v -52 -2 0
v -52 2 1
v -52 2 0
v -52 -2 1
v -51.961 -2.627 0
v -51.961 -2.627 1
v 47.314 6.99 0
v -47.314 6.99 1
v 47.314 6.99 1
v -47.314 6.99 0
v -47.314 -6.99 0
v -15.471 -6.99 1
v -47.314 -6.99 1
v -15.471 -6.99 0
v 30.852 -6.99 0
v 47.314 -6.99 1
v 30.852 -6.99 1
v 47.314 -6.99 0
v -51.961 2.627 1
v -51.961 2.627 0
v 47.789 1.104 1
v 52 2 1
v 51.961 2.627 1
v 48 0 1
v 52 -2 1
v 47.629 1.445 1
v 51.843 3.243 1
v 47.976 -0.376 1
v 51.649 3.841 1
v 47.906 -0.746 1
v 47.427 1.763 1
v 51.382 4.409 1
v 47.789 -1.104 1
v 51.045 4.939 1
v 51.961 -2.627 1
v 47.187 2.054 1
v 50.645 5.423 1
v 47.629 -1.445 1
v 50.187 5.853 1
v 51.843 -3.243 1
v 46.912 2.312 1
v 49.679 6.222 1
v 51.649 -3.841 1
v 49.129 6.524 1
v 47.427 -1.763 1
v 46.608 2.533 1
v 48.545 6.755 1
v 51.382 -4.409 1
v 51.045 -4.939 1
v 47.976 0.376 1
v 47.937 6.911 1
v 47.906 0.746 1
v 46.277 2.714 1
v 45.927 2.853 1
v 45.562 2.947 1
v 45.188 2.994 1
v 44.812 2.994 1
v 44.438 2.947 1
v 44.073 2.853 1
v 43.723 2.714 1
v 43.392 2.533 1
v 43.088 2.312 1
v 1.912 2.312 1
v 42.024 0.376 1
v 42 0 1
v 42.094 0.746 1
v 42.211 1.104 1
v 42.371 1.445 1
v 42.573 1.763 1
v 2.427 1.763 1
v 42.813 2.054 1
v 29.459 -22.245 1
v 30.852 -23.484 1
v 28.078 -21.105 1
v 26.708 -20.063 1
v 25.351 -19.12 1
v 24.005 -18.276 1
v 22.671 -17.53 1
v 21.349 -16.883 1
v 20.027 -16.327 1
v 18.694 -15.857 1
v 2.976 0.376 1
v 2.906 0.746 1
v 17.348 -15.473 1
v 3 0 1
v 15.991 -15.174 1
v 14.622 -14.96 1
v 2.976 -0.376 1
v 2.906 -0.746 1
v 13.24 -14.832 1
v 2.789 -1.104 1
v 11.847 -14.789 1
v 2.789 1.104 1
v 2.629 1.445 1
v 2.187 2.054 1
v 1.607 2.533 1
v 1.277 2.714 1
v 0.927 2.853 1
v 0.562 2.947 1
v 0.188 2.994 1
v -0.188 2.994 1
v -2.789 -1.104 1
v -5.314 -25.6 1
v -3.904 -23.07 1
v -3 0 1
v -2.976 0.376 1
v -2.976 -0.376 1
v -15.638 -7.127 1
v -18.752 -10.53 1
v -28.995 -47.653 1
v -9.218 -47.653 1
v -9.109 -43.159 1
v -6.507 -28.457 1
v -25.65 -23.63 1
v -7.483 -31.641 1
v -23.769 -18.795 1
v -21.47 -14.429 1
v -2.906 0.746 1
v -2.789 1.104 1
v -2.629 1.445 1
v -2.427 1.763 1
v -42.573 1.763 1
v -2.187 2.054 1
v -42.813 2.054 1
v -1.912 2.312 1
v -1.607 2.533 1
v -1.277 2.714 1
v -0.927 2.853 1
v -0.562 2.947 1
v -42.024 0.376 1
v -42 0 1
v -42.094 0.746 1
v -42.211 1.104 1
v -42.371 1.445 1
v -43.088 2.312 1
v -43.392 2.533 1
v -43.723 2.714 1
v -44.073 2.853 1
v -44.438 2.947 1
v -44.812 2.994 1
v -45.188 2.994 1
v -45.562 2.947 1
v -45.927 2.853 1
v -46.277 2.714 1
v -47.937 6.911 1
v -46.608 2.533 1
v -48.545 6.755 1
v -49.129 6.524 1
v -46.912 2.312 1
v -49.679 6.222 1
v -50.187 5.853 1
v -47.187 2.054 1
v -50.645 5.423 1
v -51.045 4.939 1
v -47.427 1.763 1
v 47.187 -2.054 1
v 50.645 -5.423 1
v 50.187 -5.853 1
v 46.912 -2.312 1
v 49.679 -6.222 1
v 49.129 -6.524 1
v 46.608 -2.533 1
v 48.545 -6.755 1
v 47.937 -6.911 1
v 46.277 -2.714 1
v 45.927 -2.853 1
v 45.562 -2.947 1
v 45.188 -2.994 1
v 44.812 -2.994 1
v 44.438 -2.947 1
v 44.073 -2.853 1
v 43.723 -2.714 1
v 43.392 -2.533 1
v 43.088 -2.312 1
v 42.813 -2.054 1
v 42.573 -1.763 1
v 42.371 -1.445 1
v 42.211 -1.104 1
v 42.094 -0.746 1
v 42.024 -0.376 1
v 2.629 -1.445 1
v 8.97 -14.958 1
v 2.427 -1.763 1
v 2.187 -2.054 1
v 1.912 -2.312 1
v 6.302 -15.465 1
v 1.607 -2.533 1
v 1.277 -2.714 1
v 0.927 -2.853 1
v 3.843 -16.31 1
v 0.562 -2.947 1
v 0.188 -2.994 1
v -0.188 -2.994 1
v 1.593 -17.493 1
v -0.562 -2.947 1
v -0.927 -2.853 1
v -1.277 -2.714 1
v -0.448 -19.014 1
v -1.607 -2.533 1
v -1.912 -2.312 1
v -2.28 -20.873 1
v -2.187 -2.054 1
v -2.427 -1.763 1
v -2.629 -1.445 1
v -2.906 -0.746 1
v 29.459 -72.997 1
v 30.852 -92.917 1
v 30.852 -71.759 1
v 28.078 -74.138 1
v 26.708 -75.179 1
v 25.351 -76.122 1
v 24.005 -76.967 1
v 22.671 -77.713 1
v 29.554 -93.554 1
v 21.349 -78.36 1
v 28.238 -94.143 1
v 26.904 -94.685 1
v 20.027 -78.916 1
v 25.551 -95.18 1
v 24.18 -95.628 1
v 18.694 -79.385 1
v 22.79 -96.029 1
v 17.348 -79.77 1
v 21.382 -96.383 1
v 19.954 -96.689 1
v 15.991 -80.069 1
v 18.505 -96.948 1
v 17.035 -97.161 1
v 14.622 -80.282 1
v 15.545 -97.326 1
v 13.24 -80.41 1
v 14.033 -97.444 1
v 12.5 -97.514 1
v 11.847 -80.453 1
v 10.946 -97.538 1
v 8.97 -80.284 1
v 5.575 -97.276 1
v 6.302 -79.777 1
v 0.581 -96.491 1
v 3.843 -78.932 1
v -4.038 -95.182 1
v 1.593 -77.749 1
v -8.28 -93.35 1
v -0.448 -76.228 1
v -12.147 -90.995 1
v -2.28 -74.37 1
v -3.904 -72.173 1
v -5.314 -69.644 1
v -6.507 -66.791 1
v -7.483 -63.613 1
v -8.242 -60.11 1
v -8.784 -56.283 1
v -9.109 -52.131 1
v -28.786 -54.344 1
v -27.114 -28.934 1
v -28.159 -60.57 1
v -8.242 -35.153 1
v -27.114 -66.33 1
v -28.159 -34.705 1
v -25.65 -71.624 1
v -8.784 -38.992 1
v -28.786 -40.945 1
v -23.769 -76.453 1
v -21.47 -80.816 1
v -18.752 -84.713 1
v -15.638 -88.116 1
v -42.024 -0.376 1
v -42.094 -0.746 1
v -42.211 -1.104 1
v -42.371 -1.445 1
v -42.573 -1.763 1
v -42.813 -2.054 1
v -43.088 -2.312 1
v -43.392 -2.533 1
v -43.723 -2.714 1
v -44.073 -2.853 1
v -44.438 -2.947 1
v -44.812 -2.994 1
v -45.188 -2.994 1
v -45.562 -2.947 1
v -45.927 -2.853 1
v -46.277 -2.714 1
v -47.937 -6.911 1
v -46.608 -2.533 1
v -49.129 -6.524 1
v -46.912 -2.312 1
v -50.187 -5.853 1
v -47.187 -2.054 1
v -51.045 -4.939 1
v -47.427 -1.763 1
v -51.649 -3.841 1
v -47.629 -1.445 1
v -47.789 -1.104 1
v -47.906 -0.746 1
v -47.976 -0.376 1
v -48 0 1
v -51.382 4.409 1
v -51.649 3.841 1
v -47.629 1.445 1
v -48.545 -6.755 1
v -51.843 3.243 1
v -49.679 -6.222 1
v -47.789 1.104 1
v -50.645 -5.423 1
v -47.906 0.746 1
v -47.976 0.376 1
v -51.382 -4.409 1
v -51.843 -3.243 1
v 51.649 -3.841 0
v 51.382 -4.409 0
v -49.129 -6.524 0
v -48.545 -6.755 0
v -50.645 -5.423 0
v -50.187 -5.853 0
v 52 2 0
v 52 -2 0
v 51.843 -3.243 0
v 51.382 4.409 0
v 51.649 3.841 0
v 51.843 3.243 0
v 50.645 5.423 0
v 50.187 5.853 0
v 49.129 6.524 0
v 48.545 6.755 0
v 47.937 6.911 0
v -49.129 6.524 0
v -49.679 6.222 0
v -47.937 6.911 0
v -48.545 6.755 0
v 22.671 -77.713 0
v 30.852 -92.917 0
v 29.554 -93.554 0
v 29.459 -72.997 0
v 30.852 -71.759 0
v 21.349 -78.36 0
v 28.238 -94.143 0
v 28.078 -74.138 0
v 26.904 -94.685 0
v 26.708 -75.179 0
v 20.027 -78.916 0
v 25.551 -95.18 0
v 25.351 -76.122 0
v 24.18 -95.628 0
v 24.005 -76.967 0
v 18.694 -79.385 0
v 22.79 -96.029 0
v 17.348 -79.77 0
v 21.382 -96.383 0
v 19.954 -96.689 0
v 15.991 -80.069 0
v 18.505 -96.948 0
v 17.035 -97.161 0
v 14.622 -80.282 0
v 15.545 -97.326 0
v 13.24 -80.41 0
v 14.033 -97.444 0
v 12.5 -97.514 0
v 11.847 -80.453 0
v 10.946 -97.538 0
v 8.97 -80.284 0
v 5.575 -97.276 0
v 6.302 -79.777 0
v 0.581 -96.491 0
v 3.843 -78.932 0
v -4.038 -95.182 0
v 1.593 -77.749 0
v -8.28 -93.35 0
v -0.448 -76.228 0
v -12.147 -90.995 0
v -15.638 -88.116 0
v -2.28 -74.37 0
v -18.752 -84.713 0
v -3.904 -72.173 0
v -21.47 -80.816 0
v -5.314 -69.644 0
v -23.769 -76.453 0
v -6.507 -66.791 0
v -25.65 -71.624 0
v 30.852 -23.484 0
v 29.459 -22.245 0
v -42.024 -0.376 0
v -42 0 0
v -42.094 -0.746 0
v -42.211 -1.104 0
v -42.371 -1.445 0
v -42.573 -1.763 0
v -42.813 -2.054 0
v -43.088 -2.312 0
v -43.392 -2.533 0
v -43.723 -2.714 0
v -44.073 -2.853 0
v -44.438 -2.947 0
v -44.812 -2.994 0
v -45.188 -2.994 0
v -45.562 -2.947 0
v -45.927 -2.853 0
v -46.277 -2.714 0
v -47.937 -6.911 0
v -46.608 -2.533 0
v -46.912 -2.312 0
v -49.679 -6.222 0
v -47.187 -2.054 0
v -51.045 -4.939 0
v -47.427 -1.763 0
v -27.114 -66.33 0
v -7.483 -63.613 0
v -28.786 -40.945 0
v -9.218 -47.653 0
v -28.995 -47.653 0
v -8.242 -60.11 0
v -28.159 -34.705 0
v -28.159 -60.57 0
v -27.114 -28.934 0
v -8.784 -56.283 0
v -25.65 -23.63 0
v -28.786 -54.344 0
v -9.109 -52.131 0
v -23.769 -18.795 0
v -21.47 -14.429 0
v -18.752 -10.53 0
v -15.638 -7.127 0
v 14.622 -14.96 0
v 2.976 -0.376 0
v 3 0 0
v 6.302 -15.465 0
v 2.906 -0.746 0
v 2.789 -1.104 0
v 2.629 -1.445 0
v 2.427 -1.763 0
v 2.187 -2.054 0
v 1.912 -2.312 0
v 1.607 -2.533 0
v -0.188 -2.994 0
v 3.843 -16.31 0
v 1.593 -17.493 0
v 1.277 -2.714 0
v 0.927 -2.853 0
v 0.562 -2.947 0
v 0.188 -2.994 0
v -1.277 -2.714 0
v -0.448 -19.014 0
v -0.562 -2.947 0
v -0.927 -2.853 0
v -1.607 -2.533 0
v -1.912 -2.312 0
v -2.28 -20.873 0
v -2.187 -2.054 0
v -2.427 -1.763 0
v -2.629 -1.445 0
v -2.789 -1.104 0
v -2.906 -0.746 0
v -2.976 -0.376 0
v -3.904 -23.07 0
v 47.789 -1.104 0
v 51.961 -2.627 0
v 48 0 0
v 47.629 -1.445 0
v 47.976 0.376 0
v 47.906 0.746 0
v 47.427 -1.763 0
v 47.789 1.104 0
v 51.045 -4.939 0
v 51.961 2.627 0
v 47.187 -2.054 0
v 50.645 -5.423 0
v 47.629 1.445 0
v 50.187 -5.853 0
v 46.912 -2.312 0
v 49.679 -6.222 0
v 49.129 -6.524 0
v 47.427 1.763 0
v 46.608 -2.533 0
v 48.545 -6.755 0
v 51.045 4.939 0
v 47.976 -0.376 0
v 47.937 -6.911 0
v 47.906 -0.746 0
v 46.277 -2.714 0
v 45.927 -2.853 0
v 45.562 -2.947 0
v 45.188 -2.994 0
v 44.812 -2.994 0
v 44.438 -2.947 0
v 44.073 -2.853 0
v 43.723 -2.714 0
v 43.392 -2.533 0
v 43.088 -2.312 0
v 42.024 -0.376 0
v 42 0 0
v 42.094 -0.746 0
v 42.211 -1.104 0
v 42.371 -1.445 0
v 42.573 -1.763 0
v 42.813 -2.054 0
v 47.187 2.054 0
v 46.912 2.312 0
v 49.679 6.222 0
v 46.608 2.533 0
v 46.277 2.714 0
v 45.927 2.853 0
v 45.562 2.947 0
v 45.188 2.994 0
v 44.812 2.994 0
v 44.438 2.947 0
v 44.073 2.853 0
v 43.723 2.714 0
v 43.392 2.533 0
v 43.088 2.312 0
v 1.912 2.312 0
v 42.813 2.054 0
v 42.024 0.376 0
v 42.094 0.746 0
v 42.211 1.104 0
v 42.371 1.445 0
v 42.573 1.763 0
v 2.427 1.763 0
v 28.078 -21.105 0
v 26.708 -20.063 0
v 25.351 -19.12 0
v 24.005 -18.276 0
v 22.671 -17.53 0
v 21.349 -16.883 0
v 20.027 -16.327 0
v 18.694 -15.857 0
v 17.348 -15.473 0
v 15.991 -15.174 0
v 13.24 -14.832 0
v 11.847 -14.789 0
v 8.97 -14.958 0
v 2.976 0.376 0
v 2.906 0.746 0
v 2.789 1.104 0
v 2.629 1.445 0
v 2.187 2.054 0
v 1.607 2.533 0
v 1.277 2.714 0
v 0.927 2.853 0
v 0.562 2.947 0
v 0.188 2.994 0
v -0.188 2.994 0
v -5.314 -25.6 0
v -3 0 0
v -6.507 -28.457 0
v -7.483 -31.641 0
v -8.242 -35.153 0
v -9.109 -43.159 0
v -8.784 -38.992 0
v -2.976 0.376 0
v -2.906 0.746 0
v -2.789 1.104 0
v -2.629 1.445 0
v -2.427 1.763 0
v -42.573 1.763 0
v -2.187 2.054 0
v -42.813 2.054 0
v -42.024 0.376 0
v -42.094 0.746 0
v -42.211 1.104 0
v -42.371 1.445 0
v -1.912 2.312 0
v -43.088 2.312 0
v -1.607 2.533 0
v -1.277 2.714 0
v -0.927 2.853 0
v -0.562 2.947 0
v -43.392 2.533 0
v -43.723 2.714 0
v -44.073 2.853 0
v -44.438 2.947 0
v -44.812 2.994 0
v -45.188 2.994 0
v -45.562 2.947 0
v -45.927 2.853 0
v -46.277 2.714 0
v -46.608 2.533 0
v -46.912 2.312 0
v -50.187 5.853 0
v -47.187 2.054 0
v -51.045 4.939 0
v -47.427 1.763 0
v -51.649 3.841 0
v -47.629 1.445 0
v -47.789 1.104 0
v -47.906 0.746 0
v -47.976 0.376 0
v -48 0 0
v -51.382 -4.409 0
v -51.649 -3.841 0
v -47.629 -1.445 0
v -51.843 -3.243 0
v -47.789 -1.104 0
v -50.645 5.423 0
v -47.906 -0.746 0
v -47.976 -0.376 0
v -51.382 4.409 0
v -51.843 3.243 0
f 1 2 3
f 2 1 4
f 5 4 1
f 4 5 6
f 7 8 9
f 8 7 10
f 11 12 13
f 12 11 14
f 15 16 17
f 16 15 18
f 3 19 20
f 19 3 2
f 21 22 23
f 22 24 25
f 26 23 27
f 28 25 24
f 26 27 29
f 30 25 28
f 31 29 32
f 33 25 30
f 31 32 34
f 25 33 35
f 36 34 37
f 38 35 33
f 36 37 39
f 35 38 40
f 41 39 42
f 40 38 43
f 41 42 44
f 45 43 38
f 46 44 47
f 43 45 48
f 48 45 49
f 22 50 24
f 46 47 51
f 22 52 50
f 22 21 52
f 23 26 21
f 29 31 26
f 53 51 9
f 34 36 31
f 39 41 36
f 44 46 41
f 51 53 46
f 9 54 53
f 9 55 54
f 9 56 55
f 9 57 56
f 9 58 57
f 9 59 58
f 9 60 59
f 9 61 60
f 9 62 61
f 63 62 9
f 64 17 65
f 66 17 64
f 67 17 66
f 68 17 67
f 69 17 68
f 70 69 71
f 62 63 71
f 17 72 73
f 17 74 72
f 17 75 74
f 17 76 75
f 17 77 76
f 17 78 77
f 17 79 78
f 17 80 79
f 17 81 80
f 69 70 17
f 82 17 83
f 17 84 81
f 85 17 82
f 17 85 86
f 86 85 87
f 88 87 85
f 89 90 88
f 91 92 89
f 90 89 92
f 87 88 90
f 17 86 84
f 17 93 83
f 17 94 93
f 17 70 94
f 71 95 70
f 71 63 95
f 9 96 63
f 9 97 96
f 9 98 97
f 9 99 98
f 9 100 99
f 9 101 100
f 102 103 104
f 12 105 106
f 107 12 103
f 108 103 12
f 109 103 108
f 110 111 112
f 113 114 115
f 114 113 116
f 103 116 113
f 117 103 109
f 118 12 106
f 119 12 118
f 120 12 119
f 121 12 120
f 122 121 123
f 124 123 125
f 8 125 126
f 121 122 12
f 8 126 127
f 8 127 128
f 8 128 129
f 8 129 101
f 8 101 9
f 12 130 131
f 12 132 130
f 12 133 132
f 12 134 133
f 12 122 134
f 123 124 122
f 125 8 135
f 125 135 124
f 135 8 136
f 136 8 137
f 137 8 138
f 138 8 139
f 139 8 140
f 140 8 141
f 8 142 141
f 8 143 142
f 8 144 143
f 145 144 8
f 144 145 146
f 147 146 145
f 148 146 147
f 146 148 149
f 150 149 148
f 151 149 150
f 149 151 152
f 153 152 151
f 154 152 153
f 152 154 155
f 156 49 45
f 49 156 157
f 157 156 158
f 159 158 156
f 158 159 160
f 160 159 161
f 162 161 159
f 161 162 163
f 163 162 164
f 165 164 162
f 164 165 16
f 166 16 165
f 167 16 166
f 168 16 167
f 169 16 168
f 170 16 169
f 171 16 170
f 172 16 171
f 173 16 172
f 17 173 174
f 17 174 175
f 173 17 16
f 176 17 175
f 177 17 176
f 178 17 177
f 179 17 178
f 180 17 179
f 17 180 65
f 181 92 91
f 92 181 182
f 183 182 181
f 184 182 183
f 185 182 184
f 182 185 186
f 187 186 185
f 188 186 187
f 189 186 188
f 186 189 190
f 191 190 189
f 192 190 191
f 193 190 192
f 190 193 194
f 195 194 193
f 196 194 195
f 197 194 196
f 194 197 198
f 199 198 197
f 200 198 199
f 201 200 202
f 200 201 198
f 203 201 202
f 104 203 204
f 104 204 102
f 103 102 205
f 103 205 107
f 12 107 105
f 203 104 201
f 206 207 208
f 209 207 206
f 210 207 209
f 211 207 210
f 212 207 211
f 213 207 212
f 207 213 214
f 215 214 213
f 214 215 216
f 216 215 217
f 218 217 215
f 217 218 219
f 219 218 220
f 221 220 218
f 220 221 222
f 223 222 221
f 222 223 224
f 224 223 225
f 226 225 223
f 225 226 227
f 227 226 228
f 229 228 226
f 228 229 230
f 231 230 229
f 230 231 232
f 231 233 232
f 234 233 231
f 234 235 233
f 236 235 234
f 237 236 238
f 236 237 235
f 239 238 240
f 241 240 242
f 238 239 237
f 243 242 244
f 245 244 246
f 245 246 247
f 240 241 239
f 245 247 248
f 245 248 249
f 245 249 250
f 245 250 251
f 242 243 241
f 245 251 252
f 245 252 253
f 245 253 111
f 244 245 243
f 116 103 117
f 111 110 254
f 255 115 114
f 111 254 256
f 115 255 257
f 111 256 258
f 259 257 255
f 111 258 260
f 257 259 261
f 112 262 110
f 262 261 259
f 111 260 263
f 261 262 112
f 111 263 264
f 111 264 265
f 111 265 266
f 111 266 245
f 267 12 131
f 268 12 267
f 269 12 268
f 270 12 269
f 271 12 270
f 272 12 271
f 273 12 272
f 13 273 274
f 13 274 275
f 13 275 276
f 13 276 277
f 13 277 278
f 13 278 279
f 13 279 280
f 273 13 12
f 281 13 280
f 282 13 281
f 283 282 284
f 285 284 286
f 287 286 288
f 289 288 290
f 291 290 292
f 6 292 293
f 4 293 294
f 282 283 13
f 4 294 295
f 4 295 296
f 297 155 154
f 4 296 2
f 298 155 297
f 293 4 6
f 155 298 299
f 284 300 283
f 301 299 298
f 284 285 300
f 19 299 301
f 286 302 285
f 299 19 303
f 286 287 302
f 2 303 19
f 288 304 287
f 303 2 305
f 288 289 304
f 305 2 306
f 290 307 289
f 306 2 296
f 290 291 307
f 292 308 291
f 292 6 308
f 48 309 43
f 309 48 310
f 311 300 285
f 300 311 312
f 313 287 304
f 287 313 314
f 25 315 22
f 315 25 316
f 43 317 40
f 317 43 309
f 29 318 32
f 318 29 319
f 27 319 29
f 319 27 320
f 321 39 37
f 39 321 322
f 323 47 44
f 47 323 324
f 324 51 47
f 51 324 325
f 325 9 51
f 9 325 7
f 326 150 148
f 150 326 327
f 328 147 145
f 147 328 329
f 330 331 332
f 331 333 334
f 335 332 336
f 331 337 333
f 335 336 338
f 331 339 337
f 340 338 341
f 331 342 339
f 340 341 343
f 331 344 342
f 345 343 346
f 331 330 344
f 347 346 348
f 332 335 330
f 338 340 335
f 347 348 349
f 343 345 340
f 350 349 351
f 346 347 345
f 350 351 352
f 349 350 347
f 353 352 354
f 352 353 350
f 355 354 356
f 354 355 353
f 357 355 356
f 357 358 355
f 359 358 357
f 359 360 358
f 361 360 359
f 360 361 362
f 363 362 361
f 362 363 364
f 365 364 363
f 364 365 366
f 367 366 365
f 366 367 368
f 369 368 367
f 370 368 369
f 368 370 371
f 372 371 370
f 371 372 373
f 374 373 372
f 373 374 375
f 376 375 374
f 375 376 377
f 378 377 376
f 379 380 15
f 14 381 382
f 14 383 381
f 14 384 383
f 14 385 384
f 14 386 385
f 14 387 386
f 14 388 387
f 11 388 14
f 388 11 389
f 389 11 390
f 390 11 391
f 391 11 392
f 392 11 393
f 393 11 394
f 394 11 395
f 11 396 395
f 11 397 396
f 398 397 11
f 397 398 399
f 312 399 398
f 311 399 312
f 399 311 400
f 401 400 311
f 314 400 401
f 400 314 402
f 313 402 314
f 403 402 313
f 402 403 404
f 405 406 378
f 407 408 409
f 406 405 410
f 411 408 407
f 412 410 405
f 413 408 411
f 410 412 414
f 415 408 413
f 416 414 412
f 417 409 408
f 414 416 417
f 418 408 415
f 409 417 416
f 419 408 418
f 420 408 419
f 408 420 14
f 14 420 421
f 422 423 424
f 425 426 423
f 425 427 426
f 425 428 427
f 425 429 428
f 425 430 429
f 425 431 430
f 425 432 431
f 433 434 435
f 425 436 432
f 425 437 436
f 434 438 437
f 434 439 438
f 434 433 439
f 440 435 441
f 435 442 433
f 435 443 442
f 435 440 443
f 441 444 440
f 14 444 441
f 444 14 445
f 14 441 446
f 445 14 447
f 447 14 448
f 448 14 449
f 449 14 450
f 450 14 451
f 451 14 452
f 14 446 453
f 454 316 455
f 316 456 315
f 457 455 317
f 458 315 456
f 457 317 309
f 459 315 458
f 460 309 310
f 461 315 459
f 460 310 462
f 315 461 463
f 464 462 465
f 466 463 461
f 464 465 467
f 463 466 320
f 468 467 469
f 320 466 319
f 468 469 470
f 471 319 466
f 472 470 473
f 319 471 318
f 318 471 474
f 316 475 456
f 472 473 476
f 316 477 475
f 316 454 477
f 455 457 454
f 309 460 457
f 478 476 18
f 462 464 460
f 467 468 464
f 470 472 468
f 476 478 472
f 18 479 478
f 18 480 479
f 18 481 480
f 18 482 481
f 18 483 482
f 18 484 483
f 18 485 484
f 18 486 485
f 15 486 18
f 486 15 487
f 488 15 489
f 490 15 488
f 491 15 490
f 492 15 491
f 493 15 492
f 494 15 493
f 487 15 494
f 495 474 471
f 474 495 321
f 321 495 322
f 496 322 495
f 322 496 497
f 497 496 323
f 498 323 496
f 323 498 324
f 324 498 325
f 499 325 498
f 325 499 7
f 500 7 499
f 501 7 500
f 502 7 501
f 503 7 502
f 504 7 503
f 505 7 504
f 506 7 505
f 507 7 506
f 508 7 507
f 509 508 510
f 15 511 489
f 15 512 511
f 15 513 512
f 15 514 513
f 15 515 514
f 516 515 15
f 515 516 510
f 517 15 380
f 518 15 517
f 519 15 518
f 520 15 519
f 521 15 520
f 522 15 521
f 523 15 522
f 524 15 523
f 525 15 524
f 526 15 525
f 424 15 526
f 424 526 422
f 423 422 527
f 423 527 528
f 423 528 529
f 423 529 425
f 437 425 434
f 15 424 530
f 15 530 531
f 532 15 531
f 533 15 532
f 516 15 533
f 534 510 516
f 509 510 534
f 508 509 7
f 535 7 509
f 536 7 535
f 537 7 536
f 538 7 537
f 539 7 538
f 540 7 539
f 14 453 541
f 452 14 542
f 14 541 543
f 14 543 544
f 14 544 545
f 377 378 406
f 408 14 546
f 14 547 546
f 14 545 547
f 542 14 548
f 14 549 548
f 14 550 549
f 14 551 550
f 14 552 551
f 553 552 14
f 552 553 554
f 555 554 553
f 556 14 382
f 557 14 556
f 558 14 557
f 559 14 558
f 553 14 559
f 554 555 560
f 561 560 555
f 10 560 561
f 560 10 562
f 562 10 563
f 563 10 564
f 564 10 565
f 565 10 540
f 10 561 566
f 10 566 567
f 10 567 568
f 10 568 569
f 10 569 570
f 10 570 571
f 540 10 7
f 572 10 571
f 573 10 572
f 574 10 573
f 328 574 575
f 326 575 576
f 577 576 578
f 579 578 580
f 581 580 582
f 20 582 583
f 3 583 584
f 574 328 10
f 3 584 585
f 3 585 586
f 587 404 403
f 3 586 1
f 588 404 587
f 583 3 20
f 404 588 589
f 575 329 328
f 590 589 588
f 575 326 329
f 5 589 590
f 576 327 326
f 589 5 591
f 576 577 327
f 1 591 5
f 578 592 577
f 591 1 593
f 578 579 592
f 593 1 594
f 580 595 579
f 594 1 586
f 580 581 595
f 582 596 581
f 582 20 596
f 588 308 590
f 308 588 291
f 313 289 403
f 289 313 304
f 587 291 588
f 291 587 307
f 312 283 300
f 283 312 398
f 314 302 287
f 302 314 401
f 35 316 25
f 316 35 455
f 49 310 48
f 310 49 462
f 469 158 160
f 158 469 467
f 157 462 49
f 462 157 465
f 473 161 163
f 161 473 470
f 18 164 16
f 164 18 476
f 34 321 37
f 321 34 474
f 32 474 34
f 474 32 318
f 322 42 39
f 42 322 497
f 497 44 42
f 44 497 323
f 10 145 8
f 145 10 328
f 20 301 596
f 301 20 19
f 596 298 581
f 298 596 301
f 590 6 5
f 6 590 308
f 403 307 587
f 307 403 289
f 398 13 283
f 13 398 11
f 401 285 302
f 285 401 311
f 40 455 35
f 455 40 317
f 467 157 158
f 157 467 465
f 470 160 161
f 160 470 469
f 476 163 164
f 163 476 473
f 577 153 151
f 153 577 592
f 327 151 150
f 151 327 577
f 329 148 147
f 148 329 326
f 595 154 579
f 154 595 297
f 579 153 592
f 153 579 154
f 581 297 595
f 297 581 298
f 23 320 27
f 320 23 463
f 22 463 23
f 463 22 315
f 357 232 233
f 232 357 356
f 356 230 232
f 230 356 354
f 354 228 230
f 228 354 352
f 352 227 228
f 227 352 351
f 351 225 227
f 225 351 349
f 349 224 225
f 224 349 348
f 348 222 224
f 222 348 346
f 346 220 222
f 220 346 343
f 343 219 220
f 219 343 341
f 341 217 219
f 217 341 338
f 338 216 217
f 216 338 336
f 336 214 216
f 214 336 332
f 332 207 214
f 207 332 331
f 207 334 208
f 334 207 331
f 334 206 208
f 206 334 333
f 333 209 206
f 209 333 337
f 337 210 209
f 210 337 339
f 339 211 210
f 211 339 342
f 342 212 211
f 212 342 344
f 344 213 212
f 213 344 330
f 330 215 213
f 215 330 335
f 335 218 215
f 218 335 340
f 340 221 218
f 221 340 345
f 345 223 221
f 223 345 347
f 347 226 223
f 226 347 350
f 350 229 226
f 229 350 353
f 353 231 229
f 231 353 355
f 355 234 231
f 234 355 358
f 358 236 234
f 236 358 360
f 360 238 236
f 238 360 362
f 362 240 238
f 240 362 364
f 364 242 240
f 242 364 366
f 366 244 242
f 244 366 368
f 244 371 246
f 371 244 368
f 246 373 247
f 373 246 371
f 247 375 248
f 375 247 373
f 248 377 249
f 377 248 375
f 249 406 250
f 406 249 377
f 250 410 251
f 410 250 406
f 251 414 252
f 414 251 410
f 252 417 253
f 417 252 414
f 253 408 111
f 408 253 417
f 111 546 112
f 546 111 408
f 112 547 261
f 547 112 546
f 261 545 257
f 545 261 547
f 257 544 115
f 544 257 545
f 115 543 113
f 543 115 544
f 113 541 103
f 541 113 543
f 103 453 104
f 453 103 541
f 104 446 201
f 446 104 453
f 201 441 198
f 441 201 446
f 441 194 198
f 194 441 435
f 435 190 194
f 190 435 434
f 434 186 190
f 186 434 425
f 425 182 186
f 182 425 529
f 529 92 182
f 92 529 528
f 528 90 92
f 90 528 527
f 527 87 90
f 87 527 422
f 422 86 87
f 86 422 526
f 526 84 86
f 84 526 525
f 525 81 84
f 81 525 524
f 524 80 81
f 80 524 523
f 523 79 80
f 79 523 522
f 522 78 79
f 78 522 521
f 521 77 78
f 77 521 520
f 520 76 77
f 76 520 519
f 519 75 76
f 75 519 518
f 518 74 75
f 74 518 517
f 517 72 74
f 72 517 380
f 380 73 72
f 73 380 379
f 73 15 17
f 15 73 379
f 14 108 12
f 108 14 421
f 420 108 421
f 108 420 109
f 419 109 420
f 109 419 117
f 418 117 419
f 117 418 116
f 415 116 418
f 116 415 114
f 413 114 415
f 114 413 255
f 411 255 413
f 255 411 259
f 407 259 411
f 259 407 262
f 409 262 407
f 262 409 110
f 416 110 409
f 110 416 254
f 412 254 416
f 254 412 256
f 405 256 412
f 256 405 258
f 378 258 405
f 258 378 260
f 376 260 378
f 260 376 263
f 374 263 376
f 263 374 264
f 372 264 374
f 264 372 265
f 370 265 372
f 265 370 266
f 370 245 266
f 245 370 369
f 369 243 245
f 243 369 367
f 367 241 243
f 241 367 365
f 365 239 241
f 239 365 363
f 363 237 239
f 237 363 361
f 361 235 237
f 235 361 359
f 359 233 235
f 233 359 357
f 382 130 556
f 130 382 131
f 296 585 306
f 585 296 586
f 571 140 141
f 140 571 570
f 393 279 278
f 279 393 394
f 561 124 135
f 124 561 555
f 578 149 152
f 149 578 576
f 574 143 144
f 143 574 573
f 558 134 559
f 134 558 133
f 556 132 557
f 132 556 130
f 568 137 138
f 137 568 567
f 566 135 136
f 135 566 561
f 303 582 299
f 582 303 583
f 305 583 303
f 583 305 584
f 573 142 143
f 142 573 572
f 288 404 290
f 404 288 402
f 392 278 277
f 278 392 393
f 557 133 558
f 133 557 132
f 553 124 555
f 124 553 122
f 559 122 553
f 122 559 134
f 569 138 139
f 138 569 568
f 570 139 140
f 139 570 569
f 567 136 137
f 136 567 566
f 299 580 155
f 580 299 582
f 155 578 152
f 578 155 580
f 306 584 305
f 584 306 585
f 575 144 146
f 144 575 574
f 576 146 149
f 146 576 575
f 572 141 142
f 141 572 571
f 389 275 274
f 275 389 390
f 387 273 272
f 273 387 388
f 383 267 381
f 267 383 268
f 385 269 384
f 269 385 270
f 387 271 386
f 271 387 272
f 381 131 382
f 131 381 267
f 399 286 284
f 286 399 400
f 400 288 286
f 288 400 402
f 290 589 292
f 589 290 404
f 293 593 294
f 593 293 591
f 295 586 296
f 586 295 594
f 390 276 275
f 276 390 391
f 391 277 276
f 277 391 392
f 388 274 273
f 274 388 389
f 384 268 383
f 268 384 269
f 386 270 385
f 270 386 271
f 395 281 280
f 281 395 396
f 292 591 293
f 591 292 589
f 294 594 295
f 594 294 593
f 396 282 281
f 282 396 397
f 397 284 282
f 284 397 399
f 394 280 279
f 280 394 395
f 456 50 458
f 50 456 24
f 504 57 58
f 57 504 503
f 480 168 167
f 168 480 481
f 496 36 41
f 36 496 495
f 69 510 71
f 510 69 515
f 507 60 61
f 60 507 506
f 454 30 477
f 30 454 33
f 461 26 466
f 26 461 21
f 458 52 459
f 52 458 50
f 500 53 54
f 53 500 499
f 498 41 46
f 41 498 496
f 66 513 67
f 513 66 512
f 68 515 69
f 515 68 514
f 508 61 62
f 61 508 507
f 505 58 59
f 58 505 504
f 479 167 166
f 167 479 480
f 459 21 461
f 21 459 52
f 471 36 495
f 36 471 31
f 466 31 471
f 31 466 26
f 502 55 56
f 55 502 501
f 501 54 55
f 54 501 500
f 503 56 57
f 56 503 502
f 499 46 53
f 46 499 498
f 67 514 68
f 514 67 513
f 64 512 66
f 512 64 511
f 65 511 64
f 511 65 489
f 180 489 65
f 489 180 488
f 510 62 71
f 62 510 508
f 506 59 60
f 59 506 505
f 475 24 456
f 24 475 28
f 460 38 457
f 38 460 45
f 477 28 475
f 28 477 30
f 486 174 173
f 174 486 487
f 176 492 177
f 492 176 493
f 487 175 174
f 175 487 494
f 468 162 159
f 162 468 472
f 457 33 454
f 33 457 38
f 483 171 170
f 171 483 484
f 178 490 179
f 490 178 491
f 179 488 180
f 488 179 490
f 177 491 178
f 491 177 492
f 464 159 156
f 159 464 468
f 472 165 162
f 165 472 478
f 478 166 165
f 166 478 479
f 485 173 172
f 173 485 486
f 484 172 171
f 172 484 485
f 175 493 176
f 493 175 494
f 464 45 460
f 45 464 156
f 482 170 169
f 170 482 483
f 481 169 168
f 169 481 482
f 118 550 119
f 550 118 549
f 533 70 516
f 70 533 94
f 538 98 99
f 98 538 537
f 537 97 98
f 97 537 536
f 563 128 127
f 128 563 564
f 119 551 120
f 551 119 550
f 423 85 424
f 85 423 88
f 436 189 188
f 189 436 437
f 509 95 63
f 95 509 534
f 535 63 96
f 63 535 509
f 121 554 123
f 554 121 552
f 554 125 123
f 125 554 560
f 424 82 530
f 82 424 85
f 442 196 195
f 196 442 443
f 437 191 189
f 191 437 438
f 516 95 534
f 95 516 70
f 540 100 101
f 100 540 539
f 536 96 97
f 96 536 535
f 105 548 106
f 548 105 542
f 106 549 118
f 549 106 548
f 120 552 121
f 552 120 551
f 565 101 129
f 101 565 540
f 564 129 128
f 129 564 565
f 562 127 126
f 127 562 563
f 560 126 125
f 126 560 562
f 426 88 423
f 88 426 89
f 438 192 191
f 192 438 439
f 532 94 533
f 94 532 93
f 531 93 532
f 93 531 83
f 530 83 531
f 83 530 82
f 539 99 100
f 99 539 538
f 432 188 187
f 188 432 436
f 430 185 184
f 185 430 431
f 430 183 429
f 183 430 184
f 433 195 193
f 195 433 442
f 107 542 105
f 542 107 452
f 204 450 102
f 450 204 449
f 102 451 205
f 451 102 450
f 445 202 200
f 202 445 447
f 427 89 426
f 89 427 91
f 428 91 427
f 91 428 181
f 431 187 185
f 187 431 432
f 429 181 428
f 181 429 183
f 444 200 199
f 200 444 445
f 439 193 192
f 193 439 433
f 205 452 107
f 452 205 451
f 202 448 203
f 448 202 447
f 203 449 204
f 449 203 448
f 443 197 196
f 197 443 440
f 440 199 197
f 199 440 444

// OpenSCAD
$fn = 50;


difference() {
	union() {
		translate(v = [0, 0, 0]) {
			rotate(a = [0, 0, 0]) {
				hull() {
					translate(v = [-47.0000000000, 2.0000000000, 0]) {
						rotate(a = [0, 0, 0]) {
							translate(v = [0, 0, 0]) {
								rotate(a = [0, 0, 0]) {
									cylinder(h = 1, r = 5);
								}
							}
						}
					}
					translate(v = [47.0000000000, 2.0000000000, 0]) {
						rotate(a = [0, 0, 0]) {
							translate(v = [0, 0, 0]) {
								rotate(a = [0, 0, 0]) {
									cylinder(h = 1, r = 5);
								}
							}
						}
					}
					translate(v = [-47.0000000000, -2.0000000000, 0]) {
						rotate(a = [0, 0, 0]) {
							translate(v = [0, 0, 0]) {
								rotate(a = [0, 0, 0]) {
									cylinder(h = 1, r = 5);
								}
							}
						}
					}
					translate(v = [47.0000000000, -2.0000000000, 0]) {
						rotate(a = [0, 0, 0]) {
							translate(v = [0, 0, 0]) {
								rotate(a = [0, 0, 0]) {
									cylinder(h = 1, r = 5);
								}
							}
						}
					}
				}
			}
		}
		translate(v = [0, 0, 0]) {
			rotate(a = [0, 0, 0]) {
				linear_extrude(height = 1) {
					text(font = "DejaVu Sans Mono:style=Bold", halign = "center", size = 95.0000000000, text = "C", valign = "top");
				}
			}
		}
	}
	union() {
		translate(v = [-45.0000000000, 0.0000000000, -125.0000000000]) {
			rotate(a = [0, 0, 0]) {
				cylinder(h = 250, r = 3.0000000000);
			}
		}
		translate(v = [45.0000000000, 0.0000000000, -125.0000000000]) {
			rotate(a = [0, 0, 0]) {
				cylinder(h = 250, r = 3.0000000000);
			}
		}
		translate(v = [45.0000000000, 0.0000000000, -125.0000000000]) {
			rotate(a = [0, 0, 0]) {
				cylinder(h = 250, r = 3.0000000000);
			}
		}
		translate(v = [0, 0, -125.0000000000]) {
			rotate(a = [0, 0, 0]) {
				cylinder(h = 250, r = 3.0000000000);
			}
		}
	}
}
